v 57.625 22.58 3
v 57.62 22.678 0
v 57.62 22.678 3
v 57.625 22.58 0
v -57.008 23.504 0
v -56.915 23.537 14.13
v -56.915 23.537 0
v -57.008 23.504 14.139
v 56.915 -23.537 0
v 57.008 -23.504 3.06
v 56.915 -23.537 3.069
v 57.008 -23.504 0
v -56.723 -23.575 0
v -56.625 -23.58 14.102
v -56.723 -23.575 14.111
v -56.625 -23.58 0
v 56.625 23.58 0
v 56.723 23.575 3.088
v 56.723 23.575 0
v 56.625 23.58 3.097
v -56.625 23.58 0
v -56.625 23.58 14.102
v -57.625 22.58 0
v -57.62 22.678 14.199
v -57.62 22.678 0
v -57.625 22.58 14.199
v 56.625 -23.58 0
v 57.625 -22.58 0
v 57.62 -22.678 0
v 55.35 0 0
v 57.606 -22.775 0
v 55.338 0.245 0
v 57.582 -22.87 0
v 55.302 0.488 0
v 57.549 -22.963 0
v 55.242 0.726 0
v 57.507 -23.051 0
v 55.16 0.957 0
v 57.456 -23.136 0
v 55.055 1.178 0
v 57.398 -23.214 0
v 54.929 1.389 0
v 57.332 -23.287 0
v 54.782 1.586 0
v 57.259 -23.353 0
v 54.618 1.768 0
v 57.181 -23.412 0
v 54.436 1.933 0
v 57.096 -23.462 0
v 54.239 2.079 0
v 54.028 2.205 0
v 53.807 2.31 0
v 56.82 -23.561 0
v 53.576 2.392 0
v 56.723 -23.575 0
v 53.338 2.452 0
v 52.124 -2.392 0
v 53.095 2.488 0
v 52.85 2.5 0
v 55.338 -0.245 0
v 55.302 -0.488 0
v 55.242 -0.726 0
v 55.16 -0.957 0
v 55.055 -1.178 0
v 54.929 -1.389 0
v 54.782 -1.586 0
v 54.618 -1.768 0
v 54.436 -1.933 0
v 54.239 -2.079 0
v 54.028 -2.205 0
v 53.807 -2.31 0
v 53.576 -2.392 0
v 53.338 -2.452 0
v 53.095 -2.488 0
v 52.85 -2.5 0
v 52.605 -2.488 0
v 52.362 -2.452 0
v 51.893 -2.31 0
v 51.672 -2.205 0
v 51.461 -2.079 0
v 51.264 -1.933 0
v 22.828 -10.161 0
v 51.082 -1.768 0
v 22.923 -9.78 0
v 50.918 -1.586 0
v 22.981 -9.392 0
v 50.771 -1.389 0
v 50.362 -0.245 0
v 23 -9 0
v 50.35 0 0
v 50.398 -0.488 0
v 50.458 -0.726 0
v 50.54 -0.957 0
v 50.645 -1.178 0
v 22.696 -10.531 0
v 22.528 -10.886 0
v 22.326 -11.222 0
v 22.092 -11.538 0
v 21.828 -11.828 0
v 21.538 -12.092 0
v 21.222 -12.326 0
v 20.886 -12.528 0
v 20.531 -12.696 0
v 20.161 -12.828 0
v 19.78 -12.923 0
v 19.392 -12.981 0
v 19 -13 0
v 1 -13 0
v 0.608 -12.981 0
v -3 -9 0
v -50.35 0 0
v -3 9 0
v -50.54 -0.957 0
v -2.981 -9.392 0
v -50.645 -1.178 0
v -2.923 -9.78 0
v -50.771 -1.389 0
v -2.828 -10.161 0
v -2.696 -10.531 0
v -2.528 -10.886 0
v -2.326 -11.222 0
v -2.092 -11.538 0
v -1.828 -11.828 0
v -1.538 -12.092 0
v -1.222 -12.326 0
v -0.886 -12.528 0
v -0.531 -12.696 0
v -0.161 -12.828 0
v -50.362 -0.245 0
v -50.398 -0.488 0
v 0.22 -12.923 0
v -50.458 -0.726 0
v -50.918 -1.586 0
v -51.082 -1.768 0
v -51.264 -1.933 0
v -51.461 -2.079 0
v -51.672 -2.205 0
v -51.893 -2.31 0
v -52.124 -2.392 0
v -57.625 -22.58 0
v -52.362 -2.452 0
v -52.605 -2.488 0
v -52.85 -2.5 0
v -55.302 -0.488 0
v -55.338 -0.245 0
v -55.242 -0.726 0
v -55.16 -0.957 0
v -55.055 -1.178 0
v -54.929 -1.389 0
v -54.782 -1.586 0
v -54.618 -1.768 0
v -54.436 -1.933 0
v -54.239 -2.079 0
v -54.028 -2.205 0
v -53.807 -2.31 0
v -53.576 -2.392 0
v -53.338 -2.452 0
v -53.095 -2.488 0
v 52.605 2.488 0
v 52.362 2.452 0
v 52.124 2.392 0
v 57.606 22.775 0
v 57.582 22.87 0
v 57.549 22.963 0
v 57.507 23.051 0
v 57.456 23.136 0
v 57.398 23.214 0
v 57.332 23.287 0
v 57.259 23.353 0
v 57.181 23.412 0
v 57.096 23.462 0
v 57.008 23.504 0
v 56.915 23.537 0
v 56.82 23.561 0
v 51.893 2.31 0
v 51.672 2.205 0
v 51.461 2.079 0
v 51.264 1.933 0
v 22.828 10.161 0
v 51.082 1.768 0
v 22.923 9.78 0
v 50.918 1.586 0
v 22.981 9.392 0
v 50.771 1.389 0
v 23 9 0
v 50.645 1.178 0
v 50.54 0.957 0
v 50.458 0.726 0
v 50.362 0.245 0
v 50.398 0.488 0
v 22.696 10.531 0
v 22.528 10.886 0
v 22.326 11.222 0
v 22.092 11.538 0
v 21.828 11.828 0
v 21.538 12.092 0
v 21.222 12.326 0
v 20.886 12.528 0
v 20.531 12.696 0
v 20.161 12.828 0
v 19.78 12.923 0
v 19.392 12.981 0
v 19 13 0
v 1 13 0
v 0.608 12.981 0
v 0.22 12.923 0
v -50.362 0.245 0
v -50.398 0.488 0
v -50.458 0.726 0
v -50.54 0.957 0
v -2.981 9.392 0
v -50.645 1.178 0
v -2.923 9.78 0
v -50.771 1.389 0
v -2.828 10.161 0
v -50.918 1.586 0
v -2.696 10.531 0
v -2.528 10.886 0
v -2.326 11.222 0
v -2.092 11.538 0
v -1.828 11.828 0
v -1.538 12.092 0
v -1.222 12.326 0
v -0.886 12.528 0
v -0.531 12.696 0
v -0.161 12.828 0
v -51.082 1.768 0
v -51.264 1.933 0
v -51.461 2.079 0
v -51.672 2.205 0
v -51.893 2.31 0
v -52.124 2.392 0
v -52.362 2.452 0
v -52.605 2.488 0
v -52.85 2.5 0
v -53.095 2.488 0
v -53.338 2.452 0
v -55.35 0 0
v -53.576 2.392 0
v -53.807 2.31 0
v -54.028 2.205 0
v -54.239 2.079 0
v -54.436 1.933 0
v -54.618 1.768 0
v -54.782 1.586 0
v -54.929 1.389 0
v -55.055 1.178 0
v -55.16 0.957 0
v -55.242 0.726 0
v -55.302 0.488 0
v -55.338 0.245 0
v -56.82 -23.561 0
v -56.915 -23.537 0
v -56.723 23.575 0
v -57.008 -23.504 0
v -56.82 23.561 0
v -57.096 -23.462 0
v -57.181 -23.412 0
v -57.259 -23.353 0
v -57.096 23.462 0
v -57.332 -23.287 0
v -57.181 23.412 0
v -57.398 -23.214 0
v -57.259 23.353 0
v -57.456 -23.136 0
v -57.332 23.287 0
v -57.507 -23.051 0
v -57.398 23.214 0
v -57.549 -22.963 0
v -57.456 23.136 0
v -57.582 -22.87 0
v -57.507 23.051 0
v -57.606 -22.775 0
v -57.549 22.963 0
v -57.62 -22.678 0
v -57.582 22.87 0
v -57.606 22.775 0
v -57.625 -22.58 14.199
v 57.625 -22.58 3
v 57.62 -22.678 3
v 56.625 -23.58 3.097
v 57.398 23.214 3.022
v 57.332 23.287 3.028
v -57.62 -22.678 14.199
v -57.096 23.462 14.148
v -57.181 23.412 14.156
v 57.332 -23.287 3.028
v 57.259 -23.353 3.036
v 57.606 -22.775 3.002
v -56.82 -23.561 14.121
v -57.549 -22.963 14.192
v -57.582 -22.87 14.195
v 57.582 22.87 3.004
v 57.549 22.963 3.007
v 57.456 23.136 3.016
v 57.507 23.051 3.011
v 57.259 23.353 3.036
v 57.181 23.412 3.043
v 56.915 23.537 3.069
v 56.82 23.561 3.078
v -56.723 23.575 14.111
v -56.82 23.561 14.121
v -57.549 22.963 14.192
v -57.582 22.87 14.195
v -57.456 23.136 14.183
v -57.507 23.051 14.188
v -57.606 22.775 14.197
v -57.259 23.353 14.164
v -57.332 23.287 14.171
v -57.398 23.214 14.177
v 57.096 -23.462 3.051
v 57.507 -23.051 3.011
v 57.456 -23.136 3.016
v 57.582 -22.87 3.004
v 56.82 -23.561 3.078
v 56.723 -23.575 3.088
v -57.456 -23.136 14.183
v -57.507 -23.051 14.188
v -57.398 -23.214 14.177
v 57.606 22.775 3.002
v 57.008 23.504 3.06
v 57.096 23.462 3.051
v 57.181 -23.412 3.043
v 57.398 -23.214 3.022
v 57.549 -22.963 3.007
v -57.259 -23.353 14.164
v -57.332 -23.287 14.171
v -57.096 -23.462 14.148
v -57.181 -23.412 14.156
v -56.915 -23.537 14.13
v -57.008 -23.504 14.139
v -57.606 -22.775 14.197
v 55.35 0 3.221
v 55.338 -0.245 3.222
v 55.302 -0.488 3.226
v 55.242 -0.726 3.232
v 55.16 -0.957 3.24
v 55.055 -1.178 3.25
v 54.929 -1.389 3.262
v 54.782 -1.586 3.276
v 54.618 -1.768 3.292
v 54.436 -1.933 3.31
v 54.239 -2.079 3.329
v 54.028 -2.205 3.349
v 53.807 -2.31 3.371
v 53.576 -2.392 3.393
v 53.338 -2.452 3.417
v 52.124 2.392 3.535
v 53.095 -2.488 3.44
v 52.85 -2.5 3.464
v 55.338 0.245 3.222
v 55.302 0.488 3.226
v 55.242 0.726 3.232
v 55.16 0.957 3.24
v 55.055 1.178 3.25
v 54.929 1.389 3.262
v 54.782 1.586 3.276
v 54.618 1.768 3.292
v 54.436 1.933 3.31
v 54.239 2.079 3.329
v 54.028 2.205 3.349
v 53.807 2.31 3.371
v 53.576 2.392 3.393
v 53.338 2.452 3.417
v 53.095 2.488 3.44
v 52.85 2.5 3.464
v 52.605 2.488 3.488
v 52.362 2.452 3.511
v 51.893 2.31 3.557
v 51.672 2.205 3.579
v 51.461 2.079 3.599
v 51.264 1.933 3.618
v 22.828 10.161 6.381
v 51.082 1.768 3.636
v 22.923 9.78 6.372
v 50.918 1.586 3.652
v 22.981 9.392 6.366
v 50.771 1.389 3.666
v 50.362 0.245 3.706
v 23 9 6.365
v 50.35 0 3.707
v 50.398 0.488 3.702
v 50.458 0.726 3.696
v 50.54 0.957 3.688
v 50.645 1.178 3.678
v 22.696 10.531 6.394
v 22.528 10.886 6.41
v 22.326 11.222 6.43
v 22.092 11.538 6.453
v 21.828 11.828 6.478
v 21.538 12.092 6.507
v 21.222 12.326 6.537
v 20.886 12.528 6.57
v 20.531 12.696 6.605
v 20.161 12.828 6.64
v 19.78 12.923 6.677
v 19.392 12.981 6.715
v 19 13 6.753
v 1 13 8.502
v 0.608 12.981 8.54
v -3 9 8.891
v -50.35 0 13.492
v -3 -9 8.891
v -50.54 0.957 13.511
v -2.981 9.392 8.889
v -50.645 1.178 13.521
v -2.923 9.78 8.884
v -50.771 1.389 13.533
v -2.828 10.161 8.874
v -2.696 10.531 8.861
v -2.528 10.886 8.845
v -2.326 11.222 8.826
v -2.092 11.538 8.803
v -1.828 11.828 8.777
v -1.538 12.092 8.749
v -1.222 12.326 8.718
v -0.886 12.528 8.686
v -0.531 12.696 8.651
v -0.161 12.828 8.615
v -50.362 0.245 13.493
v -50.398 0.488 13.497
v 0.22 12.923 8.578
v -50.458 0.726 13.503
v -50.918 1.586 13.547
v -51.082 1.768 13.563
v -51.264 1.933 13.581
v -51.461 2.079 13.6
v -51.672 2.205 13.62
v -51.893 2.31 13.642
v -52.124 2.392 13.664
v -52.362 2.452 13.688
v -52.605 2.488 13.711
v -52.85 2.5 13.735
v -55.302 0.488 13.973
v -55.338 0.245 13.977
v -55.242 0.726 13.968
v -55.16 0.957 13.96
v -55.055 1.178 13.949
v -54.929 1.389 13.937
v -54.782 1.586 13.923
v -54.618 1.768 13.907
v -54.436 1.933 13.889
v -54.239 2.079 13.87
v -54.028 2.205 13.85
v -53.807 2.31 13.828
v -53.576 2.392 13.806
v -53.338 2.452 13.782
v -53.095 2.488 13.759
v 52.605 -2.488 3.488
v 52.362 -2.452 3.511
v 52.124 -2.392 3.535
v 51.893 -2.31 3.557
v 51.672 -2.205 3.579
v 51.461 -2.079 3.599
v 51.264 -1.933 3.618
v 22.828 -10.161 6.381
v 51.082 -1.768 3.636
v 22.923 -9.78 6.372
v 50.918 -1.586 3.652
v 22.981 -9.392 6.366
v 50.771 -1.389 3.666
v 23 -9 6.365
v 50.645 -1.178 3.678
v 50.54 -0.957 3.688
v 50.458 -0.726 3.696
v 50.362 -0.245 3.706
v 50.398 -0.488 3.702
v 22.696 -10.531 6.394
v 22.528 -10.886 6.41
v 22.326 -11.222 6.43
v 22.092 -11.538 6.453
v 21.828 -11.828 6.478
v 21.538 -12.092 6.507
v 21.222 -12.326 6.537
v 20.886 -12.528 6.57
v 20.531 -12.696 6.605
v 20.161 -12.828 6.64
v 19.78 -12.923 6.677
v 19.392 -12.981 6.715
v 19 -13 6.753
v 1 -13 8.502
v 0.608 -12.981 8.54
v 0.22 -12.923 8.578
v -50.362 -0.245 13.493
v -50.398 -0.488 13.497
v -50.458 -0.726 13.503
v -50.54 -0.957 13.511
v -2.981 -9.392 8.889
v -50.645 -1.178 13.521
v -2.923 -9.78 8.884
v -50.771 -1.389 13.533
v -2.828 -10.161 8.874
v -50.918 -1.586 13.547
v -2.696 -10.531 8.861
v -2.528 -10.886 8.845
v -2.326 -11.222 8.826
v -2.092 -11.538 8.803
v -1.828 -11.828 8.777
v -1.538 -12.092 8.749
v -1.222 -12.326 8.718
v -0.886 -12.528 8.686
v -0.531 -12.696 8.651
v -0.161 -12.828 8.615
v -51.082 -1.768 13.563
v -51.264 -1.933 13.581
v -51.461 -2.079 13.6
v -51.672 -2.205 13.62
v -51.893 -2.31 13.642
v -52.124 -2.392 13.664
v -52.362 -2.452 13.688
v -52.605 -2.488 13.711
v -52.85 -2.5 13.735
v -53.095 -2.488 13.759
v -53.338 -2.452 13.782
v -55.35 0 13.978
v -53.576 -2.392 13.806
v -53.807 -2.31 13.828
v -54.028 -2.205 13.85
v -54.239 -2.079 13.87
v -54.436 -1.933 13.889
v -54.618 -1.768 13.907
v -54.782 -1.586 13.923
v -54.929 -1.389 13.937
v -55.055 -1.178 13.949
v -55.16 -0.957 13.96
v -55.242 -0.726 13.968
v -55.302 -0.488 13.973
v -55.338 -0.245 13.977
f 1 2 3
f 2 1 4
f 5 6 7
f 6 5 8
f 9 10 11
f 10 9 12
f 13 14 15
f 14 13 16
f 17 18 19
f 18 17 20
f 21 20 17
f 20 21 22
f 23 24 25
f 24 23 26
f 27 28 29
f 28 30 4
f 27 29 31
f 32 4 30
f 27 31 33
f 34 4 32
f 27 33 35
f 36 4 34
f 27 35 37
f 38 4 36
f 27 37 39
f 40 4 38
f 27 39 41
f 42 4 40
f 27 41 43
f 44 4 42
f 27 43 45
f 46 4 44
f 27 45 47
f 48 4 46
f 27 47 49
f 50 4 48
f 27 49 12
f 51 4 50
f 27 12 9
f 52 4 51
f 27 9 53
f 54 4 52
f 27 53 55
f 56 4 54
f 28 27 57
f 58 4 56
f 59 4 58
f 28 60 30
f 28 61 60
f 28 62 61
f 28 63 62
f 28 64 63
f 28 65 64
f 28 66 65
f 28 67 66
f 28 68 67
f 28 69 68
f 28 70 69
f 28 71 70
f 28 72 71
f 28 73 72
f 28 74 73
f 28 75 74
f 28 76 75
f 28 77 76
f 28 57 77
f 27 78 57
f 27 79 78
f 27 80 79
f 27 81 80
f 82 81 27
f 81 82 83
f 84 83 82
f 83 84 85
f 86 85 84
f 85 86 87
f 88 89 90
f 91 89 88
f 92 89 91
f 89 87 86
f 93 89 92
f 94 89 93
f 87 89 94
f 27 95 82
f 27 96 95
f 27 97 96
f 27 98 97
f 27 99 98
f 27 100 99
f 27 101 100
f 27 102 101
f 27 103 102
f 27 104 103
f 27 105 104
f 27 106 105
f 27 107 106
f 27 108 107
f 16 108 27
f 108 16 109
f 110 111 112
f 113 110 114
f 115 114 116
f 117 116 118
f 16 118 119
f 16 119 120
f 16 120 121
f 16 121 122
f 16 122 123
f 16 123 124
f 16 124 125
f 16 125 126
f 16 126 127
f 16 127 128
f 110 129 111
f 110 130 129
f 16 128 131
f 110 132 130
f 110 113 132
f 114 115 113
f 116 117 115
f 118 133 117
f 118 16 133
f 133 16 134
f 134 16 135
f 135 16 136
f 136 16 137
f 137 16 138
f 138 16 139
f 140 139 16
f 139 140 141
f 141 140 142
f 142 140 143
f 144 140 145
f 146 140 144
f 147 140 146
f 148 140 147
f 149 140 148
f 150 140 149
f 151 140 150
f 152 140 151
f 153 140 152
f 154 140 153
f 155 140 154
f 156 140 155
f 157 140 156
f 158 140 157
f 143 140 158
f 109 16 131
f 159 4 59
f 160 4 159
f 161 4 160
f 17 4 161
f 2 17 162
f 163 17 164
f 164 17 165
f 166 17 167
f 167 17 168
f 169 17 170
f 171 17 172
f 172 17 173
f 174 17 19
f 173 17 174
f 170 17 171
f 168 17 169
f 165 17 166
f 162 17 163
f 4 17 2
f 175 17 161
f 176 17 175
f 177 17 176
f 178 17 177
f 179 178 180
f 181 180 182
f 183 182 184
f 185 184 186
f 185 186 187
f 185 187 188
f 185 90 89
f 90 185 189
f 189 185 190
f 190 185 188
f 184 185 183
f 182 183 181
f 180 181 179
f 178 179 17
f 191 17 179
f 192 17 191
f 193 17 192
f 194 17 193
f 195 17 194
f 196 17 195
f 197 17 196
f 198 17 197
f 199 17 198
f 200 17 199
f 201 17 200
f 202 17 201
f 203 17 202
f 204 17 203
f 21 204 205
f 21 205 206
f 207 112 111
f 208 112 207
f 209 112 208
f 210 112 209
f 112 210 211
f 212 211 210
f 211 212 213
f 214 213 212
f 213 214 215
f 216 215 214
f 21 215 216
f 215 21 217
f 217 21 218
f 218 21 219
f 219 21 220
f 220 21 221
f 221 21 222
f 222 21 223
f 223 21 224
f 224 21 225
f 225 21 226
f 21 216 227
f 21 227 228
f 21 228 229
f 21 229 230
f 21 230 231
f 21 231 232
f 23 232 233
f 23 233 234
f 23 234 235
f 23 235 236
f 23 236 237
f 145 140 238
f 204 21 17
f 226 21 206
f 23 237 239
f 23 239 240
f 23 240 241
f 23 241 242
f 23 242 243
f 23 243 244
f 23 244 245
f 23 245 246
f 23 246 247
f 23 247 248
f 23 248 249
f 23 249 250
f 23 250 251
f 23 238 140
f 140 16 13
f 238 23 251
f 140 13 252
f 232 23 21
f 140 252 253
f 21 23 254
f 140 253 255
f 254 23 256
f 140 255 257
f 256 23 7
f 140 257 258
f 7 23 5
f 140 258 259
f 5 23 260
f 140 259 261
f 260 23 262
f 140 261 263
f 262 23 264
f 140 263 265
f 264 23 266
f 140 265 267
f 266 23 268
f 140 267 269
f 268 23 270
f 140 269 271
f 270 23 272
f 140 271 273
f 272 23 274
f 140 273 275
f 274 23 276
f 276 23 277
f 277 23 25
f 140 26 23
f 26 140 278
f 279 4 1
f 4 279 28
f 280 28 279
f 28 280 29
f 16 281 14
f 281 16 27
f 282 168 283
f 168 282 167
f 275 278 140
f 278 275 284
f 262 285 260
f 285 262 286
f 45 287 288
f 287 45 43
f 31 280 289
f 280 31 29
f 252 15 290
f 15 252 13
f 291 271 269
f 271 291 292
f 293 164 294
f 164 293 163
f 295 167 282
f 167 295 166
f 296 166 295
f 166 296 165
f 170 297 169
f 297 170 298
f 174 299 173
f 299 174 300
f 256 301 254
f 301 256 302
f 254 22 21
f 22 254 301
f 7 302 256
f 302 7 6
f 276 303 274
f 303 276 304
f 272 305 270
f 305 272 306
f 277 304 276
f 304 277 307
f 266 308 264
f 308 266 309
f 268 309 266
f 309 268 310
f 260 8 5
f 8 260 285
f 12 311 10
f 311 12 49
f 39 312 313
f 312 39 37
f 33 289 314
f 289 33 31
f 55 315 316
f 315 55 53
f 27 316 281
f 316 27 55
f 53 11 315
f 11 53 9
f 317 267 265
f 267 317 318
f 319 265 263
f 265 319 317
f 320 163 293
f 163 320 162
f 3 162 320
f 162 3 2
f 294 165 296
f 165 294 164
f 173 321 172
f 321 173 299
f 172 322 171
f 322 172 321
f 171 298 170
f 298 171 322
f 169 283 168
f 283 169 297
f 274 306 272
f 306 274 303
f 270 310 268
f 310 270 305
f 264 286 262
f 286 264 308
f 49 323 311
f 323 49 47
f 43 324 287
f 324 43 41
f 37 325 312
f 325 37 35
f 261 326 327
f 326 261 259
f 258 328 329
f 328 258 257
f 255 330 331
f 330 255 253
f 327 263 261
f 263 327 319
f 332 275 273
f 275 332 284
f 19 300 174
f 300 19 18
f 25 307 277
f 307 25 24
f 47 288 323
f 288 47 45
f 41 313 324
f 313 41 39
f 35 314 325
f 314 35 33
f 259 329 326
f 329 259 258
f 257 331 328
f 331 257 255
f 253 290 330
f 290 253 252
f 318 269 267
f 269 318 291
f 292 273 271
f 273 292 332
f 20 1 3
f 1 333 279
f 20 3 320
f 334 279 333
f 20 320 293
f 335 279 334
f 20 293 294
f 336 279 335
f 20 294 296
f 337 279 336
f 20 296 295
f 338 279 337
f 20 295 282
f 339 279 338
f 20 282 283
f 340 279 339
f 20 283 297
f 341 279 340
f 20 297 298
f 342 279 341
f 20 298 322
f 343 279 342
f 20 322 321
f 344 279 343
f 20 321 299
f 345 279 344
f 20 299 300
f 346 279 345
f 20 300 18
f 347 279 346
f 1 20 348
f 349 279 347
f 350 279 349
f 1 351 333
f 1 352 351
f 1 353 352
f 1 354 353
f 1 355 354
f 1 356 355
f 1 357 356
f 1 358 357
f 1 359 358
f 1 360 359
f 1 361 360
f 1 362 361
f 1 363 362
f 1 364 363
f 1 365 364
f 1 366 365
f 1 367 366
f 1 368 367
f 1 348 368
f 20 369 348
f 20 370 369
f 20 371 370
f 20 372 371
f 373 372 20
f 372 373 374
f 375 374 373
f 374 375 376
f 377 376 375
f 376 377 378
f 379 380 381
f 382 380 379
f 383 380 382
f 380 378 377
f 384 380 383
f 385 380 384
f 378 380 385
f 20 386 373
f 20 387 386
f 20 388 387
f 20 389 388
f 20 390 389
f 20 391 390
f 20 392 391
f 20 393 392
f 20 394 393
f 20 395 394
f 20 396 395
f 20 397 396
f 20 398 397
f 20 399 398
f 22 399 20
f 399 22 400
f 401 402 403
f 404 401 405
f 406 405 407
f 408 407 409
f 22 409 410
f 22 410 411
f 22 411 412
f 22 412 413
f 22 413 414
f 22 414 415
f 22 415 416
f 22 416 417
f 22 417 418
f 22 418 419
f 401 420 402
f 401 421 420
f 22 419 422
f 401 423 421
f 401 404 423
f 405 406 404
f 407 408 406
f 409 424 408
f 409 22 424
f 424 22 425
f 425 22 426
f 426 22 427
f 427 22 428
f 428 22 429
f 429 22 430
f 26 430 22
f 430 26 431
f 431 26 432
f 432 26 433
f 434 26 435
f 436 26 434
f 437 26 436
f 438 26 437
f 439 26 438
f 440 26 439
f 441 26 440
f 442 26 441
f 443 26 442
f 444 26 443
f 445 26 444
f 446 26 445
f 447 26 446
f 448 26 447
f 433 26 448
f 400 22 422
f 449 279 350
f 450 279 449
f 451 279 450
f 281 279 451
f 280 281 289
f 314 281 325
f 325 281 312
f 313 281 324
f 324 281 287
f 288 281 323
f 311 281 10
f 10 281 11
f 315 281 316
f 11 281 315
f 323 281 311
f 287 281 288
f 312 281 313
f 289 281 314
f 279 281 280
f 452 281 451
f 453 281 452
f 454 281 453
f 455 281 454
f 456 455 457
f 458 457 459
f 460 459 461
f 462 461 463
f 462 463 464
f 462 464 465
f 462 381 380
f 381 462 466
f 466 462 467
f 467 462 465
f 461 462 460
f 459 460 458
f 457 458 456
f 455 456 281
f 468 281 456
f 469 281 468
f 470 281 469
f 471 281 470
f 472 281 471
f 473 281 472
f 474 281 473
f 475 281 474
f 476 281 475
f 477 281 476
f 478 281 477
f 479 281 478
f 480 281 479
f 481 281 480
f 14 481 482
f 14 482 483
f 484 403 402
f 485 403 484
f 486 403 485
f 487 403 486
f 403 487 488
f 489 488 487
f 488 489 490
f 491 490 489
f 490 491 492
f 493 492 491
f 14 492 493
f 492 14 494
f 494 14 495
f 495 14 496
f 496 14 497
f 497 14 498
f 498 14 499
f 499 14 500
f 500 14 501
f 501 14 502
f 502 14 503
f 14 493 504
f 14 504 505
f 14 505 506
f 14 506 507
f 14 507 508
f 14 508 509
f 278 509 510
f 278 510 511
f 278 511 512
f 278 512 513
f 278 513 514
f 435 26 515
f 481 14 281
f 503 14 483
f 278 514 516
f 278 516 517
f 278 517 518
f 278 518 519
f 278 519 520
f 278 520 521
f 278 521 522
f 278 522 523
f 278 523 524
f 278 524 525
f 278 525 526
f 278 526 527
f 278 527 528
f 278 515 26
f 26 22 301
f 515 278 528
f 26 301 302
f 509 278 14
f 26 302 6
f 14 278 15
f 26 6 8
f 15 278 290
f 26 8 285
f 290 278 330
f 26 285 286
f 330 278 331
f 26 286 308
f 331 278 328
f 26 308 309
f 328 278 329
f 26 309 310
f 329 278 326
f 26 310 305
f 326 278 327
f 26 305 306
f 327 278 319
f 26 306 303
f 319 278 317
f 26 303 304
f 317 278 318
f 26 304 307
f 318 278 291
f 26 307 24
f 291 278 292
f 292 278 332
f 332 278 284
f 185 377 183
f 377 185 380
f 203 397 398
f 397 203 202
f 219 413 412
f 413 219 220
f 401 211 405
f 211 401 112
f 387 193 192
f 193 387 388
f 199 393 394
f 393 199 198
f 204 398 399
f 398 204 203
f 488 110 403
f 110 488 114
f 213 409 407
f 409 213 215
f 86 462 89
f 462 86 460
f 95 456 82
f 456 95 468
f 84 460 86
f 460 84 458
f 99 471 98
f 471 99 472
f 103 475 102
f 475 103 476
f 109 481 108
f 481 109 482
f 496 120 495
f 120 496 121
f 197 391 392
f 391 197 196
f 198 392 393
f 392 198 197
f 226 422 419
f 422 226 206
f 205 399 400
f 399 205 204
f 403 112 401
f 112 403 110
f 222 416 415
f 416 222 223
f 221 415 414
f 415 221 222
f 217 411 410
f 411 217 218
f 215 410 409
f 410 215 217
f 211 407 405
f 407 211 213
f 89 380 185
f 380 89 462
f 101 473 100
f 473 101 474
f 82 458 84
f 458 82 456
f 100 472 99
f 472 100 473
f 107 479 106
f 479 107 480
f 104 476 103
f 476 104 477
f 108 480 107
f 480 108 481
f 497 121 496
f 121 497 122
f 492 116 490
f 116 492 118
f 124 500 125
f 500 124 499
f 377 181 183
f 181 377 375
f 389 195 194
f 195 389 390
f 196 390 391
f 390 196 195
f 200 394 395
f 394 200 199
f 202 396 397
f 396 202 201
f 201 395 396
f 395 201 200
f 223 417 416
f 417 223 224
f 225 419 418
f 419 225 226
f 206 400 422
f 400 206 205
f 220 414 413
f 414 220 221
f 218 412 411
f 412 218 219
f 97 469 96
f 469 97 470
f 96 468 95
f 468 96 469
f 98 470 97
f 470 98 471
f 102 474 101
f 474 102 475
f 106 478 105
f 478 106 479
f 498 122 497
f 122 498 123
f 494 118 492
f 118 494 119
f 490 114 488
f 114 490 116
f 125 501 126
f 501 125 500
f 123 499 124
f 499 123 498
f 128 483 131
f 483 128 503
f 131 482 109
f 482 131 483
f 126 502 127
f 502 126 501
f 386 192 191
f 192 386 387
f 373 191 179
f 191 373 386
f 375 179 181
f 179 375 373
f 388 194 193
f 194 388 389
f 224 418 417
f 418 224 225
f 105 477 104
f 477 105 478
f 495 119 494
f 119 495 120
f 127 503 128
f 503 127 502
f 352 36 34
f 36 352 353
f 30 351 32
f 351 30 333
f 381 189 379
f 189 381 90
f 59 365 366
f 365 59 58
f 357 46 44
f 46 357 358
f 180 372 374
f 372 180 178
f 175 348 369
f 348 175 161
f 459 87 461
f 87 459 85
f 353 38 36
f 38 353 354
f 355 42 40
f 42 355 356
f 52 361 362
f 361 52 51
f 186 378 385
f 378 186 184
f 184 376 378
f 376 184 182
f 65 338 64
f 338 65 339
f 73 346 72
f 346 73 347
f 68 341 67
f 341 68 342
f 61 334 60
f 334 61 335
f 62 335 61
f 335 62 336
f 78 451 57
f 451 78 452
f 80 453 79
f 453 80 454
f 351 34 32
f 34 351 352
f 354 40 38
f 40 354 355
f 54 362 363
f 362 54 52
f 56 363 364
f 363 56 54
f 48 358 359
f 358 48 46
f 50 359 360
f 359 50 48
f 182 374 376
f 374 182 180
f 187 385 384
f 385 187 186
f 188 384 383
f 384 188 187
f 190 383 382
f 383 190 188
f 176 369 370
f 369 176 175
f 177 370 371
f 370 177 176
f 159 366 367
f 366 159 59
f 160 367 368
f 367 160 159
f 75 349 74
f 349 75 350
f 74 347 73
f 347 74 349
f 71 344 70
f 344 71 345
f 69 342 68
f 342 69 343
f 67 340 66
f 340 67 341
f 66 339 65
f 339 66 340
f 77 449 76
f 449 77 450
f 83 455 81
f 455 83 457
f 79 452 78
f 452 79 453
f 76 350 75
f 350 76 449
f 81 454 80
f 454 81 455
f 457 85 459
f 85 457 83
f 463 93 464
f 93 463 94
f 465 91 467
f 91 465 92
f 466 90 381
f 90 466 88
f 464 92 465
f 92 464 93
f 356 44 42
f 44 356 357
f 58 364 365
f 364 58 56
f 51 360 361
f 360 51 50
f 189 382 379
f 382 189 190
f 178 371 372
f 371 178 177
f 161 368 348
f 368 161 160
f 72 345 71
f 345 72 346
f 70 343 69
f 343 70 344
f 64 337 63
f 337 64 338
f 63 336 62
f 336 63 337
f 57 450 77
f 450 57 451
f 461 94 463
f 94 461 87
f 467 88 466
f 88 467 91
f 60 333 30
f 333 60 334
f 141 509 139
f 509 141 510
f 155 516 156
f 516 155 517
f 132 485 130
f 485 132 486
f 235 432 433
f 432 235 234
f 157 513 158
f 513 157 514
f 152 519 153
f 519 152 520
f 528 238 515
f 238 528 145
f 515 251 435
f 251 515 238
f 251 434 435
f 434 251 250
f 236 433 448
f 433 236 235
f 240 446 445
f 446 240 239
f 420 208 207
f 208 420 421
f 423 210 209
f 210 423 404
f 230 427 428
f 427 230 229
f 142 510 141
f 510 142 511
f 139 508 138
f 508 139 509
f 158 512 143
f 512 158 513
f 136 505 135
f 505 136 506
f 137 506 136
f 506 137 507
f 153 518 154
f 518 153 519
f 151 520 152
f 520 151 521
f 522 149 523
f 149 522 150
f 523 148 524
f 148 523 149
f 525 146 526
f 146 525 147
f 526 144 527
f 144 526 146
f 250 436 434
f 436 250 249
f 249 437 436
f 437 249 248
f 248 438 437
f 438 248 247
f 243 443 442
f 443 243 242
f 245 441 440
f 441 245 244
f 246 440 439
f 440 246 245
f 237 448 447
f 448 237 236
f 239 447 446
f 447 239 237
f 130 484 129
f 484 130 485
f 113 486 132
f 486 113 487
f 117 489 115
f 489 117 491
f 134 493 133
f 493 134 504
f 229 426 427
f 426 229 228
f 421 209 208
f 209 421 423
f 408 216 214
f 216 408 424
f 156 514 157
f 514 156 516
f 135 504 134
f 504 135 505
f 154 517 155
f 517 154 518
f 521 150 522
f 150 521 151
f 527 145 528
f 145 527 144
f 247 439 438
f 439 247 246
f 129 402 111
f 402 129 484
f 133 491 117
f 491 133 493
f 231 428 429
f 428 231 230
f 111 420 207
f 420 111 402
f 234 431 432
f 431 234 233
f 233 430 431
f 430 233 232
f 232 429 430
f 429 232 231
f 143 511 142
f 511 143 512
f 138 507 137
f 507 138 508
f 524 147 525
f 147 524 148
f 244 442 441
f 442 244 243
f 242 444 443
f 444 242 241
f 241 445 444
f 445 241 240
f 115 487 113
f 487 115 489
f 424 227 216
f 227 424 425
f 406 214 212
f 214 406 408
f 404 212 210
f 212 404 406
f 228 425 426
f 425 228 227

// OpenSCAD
// A wedge base for Ring.com Doorbell. Calibrated for the Pro version.

// Adding '0' to hide from Thingiverse customizer.
eps1 = 0.01 + 0;
eps2 = 2*eps1;

// Base width. Should match the doorbell with cover.
width = 47.16;  // along y

// Base length. Should match the doorbell with cover.
length = 115.25;  // along x

// Base width  at the bottom of the doorbell.
bottom_thickness = 3;  // along z

// Base width at the  top of the doorbell.
top_thickness = 14.2;  // along z

max_thickness = max(bottom_thickness, top_thickness);

// Camera pan angle (0 = none, positive = right, negative = left)
pan_angle = 0;

// Radius of base corner.
corner_radius = 1;

// Spacing between screw hole centers.
screw_hole_spacing = 105.7;

// Diameter of screw holes.
screw_hole_diameter = 5;

// Size of the wires hole.
wire_hole_size = 26;

// Offset between centers of wire hole and base.
wire_hole_offset = 10;

// Radius of the wire hole corners
wire_hole_corner_radius = 4;

// Round faces smoothness.
$fn=64;


module corner_post(l, w, h, r) {
     translate([l/2-r, w/2-r, 0]) 
      cylinder(r=r, h=h);  
}

module rounded_block(l, w, h, r) {
  hull() {
    corner_post(l, w, h, r);
    mirror([1, 0, 0]) corner_post(l, w, h, r);
    mirror([0, 1, 0]) corner_post(l, w, h, r);
    mirror([1, 0, 0]) mirror([0, 1, 0]) corner_post(l, w, h, r);
  } 
}

module slope() {
  offset = sin(abs(pan_angle)) * width/2;
  hull() {
    translate([-length/2-eps1, 0, top_thickness+offset]) 
      rotate([-pan_angle, 0, 0]) translate([0, -width-eps1, 0]) 
        cube([eps1, 2*width+eps2, 2*max_thickness]);
    translate([length/2, 0, bottom_thickness+offset]) 
      rotate([-pan_angle, 0, 0]) translate([0, -width-eps1, 0]) 
        cube([eps1, 2*width+eps2, 2*max_thickness]);
  }
}

module screw_hole() {
  translate([screw_hole_spacing/2, 0, -eps1]) 
      cylinder(d=screw_hole_diameter, h=max_thickness*2);
}

module wires_hole() {
  translate([wire_hole_offset, 0, -eps1]) rounded_block(wire_hole_size, wire_hole_size, max_thickness*2, wire_hole_corner_radius);
}


module body() {
  difference() {
    rounded_block(length, width, 2*max_thickness, corner_radius);
    slope();
    wires_hole();
    screw_hole();
    mirror([1, 0, 0]) screw_hole();
  }
}

body();




  
 
